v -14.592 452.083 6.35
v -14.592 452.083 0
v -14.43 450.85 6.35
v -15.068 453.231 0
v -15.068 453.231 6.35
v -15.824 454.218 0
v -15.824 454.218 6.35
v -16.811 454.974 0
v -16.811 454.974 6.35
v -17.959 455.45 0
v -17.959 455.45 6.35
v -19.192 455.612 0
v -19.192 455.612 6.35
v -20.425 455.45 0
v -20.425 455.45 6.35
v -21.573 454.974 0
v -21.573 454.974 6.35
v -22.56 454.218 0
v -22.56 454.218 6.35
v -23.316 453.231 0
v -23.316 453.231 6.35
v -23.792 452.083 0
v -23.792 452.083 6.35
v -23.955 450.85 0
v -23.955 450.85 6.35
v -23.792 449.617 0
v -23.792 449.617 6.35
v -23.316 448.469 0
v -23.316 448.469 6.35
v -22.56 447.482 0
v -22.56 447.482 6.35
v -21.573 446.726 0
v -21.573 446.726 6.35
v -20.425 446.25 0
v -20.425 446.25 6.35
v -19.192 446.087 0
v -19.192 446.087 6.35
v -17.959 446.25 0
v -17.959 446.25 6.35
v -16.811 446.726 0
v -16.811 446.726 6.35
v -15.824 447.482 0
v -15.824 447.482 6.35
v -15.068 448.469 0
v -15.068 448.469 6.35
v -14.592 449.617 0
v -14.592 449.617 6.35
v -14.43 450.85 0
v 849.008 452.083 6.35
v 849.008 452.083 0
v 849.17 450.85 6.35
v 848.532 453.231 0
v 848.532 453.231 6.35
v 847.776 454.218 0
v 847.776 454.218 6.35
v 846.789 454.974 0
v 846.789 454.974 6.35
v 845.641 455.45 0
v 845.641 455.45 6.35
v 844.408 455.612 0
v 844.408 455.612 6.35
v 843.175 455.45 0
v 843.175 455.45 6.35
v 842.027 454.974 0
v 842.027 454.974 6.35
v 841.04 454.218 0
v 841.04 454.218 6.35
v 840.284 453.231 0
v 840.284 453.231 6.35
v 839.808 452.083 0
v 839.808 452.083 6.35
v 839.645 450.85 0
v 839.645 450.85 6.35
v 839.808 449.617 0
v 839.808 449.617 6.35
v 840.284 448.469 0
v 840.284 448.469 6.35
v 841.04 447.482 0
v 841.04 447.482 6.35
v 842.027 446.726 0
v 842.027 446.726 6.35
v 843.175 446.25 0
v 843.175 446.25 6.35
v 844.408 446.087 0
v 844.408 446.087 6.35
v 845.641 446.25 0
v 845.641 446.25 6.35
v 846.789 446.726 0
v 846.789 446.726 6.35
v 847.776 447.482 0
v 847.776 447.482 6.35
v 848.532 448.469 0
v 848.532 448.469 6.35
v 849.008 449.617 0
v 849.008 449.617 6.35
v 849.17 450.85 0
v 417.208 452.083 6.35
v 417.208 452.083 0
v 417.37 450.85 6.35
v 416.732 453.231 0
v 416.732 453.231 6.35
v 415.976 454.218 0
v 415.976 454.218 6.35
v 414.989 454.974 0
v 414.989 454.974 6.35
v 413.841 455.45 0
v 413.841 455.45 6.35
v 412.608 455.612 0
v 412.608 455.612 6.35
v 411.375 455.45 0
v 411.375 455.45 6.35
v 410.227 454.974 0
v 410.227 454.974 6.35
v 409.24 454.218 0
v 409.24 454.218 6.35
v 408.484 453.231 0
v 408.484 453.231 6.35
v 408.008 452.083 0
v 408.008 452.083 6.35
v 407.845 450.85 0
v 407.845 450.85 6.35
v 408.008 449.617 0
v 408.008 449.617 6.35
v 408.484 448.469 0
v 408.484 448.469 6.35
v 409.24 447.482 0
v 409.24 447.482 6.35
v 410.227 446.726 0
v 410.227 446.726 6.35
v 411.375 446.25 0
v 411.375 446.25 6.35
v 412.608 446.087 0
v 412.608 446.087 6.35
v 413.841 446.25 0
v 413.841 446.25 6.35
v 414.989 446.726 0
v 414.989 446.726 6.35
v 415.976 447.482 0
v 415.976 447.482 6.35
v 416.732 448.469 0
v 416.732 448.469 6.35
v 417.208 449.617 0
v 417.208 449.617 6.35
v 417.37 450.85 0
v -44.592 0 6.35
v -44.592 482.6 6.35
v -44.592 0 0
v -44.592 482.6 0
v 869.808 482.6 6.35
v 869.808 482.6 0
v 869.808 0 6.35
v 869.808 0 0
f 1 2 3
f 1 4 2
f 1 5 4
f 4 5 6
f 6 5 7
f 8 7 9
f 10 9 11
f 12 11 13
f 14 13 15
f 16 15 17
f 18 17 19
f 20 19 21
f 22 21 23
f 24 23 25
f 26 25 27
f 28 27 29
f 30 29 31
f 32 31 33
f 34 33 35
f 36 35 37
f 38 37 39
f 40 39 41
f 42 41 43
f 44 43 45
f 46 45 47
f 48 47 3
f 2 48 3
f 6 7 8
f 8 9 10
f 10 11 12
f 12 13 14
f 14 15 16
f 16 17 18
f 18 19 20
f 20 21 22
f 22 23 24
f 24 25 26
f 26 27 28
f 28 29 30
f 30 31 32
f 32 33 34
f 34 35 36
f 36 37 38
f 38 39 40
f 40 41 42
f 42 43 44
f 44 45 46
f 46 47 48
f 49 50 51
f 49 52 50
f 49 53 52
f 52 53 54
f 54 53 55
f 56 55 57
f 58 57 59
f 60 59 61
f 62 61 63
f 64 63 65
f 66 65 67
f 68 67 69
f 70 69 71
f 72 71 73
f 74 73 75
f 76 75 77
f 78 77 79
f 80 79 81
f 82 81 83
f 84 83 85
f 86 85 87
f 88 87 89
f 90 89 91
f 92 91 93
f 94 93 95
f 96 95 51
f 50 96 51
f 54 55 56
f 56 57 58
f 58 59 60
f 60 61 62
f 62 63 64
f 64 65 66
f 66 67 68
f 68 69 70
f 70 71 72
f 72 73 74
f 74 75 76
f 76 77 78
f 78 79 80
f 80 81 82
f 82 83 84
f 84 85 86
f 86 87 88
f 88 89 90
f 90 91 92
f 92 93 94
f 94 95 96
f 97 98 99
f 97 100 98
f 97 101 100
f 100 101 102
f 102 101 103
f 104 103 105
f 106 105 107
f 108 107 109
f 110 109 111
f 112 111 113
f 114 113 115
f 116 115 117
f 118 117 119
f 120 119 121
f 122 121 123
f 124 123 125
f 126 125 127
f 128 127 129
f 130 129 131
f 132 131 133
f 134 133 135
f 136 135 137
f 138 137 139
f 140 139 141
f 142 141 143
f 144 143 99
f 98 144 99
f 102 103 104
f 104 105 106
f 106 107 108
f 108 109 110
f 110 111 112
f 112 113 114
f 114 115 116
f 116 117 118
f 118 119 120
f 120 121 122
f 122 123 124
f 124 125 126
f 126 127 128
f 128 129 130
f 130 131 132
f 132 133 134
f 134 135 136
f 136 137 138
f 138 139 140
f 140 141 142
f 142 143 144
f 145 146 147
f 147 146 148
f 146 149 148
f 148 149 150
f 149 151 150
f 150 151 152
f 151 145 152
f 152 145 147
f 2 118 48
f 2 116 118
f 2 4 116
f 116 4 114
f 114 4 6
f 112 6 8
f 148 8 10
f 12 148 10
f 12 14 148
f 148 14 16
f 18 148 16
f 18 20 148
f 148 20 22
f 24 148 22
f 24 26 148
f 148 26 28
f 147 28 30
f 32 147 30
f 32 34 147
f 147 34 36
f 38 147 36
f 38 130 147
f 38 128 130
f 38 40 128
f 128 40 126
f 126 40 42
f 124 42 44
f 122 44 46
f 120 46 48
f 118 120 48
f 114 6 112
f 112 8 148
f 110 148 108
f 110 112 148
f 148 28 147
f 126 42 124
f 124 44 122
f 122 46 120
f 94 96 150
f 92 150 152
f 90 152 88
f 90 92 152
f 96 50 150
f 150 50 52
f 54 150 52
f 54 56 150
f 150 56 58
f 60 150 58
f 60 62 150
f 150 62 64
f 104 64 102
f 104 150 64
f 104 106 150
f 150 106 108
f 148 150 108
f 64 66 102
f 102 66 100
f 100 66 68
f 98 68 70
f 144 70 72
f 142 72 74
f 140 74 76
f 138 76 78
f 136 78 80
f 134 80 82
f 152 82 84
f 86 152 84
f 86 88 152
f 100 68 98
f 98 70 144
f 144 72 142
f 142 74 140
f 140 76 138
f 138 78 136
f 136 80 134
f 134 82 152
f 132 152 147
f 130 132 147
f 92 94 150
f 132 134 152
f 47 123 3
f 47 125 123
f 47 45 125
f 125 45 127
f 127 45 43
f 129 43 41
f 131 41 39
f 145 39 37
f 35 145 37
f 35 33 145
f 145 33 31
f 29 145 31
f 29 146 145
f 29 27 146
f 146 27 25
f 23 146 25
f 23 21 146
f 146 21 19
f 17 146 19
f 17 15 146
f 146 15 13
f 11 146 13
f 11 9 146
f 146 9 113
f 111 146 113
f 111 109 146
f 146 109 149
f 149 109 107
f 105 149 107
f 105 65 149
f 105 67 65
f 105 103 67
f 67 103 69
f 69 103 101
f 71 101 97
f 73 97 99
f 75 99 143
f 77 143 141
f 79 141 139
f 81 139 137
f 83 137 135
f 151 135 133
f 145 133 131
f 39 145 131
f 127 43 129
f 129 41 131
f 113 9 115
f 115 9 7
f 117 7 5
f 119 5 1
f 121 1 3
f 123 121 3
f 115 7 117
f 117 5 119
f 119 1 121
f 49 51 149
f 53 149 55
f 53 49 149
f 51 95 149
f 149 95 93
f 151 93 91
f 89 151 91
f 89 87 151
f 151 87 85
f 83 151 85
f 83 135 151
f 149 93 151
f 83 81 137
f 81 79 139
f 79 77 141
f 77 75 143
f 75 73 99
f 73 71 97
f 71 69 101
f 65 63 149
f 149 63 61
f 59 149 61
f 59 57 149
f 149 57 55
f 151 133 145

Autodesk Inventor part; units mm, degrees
ref_plane "YZ Plane" through (0, 0, 0) normal (1, 0, 0) x (0, 1, 0)
ref_plane "XZ Plane" through (0, 0, 0) normal (0, 1, 0) x (-1, 0, 0)
ref_plane "XY Plane" through (0, 0, 0) normal (0, 0, 1) x (1, 0, 0)
sketch "Sketch1" plane through (0, 0, 0) normal (0, 0, 1) x (1, 0, 0)
  line L0 (-44.592, 0) -> (869.808, 0)
  line L1 (869.808, 482.6) -> (-44.592, 482.6)
  line L2 (-44.592, 482.6) -> (-44.592, 0)
  line L3 (869.808, 0) -> (869.808, 482.6)
  circle A0 centre (-19.192, 450.85) radius 4.7625
  circle A1 centre (412.608, 450.85) radius 4.7625
  circle A2 centre (844.408, 450.85) radius 4.7625
  dimension "d0" = 914.4
  dimension "d1" = 482.6
  dimension "d2" = 9.525
  dimension "d3" = 9.525
  dimension "d4" = 9.525
  dimension "d5" = 31.75
  dimension "d6" = 31.75
  dimension "d7" = 31.75
  dimension "d8" = 25.4
  dimension "d9" = 457.2
  dimension "d10" = 889
extrude "Extrusion1" add sketch "Sketch1" along normal blind 6.35
properties part number "FE-00008"
